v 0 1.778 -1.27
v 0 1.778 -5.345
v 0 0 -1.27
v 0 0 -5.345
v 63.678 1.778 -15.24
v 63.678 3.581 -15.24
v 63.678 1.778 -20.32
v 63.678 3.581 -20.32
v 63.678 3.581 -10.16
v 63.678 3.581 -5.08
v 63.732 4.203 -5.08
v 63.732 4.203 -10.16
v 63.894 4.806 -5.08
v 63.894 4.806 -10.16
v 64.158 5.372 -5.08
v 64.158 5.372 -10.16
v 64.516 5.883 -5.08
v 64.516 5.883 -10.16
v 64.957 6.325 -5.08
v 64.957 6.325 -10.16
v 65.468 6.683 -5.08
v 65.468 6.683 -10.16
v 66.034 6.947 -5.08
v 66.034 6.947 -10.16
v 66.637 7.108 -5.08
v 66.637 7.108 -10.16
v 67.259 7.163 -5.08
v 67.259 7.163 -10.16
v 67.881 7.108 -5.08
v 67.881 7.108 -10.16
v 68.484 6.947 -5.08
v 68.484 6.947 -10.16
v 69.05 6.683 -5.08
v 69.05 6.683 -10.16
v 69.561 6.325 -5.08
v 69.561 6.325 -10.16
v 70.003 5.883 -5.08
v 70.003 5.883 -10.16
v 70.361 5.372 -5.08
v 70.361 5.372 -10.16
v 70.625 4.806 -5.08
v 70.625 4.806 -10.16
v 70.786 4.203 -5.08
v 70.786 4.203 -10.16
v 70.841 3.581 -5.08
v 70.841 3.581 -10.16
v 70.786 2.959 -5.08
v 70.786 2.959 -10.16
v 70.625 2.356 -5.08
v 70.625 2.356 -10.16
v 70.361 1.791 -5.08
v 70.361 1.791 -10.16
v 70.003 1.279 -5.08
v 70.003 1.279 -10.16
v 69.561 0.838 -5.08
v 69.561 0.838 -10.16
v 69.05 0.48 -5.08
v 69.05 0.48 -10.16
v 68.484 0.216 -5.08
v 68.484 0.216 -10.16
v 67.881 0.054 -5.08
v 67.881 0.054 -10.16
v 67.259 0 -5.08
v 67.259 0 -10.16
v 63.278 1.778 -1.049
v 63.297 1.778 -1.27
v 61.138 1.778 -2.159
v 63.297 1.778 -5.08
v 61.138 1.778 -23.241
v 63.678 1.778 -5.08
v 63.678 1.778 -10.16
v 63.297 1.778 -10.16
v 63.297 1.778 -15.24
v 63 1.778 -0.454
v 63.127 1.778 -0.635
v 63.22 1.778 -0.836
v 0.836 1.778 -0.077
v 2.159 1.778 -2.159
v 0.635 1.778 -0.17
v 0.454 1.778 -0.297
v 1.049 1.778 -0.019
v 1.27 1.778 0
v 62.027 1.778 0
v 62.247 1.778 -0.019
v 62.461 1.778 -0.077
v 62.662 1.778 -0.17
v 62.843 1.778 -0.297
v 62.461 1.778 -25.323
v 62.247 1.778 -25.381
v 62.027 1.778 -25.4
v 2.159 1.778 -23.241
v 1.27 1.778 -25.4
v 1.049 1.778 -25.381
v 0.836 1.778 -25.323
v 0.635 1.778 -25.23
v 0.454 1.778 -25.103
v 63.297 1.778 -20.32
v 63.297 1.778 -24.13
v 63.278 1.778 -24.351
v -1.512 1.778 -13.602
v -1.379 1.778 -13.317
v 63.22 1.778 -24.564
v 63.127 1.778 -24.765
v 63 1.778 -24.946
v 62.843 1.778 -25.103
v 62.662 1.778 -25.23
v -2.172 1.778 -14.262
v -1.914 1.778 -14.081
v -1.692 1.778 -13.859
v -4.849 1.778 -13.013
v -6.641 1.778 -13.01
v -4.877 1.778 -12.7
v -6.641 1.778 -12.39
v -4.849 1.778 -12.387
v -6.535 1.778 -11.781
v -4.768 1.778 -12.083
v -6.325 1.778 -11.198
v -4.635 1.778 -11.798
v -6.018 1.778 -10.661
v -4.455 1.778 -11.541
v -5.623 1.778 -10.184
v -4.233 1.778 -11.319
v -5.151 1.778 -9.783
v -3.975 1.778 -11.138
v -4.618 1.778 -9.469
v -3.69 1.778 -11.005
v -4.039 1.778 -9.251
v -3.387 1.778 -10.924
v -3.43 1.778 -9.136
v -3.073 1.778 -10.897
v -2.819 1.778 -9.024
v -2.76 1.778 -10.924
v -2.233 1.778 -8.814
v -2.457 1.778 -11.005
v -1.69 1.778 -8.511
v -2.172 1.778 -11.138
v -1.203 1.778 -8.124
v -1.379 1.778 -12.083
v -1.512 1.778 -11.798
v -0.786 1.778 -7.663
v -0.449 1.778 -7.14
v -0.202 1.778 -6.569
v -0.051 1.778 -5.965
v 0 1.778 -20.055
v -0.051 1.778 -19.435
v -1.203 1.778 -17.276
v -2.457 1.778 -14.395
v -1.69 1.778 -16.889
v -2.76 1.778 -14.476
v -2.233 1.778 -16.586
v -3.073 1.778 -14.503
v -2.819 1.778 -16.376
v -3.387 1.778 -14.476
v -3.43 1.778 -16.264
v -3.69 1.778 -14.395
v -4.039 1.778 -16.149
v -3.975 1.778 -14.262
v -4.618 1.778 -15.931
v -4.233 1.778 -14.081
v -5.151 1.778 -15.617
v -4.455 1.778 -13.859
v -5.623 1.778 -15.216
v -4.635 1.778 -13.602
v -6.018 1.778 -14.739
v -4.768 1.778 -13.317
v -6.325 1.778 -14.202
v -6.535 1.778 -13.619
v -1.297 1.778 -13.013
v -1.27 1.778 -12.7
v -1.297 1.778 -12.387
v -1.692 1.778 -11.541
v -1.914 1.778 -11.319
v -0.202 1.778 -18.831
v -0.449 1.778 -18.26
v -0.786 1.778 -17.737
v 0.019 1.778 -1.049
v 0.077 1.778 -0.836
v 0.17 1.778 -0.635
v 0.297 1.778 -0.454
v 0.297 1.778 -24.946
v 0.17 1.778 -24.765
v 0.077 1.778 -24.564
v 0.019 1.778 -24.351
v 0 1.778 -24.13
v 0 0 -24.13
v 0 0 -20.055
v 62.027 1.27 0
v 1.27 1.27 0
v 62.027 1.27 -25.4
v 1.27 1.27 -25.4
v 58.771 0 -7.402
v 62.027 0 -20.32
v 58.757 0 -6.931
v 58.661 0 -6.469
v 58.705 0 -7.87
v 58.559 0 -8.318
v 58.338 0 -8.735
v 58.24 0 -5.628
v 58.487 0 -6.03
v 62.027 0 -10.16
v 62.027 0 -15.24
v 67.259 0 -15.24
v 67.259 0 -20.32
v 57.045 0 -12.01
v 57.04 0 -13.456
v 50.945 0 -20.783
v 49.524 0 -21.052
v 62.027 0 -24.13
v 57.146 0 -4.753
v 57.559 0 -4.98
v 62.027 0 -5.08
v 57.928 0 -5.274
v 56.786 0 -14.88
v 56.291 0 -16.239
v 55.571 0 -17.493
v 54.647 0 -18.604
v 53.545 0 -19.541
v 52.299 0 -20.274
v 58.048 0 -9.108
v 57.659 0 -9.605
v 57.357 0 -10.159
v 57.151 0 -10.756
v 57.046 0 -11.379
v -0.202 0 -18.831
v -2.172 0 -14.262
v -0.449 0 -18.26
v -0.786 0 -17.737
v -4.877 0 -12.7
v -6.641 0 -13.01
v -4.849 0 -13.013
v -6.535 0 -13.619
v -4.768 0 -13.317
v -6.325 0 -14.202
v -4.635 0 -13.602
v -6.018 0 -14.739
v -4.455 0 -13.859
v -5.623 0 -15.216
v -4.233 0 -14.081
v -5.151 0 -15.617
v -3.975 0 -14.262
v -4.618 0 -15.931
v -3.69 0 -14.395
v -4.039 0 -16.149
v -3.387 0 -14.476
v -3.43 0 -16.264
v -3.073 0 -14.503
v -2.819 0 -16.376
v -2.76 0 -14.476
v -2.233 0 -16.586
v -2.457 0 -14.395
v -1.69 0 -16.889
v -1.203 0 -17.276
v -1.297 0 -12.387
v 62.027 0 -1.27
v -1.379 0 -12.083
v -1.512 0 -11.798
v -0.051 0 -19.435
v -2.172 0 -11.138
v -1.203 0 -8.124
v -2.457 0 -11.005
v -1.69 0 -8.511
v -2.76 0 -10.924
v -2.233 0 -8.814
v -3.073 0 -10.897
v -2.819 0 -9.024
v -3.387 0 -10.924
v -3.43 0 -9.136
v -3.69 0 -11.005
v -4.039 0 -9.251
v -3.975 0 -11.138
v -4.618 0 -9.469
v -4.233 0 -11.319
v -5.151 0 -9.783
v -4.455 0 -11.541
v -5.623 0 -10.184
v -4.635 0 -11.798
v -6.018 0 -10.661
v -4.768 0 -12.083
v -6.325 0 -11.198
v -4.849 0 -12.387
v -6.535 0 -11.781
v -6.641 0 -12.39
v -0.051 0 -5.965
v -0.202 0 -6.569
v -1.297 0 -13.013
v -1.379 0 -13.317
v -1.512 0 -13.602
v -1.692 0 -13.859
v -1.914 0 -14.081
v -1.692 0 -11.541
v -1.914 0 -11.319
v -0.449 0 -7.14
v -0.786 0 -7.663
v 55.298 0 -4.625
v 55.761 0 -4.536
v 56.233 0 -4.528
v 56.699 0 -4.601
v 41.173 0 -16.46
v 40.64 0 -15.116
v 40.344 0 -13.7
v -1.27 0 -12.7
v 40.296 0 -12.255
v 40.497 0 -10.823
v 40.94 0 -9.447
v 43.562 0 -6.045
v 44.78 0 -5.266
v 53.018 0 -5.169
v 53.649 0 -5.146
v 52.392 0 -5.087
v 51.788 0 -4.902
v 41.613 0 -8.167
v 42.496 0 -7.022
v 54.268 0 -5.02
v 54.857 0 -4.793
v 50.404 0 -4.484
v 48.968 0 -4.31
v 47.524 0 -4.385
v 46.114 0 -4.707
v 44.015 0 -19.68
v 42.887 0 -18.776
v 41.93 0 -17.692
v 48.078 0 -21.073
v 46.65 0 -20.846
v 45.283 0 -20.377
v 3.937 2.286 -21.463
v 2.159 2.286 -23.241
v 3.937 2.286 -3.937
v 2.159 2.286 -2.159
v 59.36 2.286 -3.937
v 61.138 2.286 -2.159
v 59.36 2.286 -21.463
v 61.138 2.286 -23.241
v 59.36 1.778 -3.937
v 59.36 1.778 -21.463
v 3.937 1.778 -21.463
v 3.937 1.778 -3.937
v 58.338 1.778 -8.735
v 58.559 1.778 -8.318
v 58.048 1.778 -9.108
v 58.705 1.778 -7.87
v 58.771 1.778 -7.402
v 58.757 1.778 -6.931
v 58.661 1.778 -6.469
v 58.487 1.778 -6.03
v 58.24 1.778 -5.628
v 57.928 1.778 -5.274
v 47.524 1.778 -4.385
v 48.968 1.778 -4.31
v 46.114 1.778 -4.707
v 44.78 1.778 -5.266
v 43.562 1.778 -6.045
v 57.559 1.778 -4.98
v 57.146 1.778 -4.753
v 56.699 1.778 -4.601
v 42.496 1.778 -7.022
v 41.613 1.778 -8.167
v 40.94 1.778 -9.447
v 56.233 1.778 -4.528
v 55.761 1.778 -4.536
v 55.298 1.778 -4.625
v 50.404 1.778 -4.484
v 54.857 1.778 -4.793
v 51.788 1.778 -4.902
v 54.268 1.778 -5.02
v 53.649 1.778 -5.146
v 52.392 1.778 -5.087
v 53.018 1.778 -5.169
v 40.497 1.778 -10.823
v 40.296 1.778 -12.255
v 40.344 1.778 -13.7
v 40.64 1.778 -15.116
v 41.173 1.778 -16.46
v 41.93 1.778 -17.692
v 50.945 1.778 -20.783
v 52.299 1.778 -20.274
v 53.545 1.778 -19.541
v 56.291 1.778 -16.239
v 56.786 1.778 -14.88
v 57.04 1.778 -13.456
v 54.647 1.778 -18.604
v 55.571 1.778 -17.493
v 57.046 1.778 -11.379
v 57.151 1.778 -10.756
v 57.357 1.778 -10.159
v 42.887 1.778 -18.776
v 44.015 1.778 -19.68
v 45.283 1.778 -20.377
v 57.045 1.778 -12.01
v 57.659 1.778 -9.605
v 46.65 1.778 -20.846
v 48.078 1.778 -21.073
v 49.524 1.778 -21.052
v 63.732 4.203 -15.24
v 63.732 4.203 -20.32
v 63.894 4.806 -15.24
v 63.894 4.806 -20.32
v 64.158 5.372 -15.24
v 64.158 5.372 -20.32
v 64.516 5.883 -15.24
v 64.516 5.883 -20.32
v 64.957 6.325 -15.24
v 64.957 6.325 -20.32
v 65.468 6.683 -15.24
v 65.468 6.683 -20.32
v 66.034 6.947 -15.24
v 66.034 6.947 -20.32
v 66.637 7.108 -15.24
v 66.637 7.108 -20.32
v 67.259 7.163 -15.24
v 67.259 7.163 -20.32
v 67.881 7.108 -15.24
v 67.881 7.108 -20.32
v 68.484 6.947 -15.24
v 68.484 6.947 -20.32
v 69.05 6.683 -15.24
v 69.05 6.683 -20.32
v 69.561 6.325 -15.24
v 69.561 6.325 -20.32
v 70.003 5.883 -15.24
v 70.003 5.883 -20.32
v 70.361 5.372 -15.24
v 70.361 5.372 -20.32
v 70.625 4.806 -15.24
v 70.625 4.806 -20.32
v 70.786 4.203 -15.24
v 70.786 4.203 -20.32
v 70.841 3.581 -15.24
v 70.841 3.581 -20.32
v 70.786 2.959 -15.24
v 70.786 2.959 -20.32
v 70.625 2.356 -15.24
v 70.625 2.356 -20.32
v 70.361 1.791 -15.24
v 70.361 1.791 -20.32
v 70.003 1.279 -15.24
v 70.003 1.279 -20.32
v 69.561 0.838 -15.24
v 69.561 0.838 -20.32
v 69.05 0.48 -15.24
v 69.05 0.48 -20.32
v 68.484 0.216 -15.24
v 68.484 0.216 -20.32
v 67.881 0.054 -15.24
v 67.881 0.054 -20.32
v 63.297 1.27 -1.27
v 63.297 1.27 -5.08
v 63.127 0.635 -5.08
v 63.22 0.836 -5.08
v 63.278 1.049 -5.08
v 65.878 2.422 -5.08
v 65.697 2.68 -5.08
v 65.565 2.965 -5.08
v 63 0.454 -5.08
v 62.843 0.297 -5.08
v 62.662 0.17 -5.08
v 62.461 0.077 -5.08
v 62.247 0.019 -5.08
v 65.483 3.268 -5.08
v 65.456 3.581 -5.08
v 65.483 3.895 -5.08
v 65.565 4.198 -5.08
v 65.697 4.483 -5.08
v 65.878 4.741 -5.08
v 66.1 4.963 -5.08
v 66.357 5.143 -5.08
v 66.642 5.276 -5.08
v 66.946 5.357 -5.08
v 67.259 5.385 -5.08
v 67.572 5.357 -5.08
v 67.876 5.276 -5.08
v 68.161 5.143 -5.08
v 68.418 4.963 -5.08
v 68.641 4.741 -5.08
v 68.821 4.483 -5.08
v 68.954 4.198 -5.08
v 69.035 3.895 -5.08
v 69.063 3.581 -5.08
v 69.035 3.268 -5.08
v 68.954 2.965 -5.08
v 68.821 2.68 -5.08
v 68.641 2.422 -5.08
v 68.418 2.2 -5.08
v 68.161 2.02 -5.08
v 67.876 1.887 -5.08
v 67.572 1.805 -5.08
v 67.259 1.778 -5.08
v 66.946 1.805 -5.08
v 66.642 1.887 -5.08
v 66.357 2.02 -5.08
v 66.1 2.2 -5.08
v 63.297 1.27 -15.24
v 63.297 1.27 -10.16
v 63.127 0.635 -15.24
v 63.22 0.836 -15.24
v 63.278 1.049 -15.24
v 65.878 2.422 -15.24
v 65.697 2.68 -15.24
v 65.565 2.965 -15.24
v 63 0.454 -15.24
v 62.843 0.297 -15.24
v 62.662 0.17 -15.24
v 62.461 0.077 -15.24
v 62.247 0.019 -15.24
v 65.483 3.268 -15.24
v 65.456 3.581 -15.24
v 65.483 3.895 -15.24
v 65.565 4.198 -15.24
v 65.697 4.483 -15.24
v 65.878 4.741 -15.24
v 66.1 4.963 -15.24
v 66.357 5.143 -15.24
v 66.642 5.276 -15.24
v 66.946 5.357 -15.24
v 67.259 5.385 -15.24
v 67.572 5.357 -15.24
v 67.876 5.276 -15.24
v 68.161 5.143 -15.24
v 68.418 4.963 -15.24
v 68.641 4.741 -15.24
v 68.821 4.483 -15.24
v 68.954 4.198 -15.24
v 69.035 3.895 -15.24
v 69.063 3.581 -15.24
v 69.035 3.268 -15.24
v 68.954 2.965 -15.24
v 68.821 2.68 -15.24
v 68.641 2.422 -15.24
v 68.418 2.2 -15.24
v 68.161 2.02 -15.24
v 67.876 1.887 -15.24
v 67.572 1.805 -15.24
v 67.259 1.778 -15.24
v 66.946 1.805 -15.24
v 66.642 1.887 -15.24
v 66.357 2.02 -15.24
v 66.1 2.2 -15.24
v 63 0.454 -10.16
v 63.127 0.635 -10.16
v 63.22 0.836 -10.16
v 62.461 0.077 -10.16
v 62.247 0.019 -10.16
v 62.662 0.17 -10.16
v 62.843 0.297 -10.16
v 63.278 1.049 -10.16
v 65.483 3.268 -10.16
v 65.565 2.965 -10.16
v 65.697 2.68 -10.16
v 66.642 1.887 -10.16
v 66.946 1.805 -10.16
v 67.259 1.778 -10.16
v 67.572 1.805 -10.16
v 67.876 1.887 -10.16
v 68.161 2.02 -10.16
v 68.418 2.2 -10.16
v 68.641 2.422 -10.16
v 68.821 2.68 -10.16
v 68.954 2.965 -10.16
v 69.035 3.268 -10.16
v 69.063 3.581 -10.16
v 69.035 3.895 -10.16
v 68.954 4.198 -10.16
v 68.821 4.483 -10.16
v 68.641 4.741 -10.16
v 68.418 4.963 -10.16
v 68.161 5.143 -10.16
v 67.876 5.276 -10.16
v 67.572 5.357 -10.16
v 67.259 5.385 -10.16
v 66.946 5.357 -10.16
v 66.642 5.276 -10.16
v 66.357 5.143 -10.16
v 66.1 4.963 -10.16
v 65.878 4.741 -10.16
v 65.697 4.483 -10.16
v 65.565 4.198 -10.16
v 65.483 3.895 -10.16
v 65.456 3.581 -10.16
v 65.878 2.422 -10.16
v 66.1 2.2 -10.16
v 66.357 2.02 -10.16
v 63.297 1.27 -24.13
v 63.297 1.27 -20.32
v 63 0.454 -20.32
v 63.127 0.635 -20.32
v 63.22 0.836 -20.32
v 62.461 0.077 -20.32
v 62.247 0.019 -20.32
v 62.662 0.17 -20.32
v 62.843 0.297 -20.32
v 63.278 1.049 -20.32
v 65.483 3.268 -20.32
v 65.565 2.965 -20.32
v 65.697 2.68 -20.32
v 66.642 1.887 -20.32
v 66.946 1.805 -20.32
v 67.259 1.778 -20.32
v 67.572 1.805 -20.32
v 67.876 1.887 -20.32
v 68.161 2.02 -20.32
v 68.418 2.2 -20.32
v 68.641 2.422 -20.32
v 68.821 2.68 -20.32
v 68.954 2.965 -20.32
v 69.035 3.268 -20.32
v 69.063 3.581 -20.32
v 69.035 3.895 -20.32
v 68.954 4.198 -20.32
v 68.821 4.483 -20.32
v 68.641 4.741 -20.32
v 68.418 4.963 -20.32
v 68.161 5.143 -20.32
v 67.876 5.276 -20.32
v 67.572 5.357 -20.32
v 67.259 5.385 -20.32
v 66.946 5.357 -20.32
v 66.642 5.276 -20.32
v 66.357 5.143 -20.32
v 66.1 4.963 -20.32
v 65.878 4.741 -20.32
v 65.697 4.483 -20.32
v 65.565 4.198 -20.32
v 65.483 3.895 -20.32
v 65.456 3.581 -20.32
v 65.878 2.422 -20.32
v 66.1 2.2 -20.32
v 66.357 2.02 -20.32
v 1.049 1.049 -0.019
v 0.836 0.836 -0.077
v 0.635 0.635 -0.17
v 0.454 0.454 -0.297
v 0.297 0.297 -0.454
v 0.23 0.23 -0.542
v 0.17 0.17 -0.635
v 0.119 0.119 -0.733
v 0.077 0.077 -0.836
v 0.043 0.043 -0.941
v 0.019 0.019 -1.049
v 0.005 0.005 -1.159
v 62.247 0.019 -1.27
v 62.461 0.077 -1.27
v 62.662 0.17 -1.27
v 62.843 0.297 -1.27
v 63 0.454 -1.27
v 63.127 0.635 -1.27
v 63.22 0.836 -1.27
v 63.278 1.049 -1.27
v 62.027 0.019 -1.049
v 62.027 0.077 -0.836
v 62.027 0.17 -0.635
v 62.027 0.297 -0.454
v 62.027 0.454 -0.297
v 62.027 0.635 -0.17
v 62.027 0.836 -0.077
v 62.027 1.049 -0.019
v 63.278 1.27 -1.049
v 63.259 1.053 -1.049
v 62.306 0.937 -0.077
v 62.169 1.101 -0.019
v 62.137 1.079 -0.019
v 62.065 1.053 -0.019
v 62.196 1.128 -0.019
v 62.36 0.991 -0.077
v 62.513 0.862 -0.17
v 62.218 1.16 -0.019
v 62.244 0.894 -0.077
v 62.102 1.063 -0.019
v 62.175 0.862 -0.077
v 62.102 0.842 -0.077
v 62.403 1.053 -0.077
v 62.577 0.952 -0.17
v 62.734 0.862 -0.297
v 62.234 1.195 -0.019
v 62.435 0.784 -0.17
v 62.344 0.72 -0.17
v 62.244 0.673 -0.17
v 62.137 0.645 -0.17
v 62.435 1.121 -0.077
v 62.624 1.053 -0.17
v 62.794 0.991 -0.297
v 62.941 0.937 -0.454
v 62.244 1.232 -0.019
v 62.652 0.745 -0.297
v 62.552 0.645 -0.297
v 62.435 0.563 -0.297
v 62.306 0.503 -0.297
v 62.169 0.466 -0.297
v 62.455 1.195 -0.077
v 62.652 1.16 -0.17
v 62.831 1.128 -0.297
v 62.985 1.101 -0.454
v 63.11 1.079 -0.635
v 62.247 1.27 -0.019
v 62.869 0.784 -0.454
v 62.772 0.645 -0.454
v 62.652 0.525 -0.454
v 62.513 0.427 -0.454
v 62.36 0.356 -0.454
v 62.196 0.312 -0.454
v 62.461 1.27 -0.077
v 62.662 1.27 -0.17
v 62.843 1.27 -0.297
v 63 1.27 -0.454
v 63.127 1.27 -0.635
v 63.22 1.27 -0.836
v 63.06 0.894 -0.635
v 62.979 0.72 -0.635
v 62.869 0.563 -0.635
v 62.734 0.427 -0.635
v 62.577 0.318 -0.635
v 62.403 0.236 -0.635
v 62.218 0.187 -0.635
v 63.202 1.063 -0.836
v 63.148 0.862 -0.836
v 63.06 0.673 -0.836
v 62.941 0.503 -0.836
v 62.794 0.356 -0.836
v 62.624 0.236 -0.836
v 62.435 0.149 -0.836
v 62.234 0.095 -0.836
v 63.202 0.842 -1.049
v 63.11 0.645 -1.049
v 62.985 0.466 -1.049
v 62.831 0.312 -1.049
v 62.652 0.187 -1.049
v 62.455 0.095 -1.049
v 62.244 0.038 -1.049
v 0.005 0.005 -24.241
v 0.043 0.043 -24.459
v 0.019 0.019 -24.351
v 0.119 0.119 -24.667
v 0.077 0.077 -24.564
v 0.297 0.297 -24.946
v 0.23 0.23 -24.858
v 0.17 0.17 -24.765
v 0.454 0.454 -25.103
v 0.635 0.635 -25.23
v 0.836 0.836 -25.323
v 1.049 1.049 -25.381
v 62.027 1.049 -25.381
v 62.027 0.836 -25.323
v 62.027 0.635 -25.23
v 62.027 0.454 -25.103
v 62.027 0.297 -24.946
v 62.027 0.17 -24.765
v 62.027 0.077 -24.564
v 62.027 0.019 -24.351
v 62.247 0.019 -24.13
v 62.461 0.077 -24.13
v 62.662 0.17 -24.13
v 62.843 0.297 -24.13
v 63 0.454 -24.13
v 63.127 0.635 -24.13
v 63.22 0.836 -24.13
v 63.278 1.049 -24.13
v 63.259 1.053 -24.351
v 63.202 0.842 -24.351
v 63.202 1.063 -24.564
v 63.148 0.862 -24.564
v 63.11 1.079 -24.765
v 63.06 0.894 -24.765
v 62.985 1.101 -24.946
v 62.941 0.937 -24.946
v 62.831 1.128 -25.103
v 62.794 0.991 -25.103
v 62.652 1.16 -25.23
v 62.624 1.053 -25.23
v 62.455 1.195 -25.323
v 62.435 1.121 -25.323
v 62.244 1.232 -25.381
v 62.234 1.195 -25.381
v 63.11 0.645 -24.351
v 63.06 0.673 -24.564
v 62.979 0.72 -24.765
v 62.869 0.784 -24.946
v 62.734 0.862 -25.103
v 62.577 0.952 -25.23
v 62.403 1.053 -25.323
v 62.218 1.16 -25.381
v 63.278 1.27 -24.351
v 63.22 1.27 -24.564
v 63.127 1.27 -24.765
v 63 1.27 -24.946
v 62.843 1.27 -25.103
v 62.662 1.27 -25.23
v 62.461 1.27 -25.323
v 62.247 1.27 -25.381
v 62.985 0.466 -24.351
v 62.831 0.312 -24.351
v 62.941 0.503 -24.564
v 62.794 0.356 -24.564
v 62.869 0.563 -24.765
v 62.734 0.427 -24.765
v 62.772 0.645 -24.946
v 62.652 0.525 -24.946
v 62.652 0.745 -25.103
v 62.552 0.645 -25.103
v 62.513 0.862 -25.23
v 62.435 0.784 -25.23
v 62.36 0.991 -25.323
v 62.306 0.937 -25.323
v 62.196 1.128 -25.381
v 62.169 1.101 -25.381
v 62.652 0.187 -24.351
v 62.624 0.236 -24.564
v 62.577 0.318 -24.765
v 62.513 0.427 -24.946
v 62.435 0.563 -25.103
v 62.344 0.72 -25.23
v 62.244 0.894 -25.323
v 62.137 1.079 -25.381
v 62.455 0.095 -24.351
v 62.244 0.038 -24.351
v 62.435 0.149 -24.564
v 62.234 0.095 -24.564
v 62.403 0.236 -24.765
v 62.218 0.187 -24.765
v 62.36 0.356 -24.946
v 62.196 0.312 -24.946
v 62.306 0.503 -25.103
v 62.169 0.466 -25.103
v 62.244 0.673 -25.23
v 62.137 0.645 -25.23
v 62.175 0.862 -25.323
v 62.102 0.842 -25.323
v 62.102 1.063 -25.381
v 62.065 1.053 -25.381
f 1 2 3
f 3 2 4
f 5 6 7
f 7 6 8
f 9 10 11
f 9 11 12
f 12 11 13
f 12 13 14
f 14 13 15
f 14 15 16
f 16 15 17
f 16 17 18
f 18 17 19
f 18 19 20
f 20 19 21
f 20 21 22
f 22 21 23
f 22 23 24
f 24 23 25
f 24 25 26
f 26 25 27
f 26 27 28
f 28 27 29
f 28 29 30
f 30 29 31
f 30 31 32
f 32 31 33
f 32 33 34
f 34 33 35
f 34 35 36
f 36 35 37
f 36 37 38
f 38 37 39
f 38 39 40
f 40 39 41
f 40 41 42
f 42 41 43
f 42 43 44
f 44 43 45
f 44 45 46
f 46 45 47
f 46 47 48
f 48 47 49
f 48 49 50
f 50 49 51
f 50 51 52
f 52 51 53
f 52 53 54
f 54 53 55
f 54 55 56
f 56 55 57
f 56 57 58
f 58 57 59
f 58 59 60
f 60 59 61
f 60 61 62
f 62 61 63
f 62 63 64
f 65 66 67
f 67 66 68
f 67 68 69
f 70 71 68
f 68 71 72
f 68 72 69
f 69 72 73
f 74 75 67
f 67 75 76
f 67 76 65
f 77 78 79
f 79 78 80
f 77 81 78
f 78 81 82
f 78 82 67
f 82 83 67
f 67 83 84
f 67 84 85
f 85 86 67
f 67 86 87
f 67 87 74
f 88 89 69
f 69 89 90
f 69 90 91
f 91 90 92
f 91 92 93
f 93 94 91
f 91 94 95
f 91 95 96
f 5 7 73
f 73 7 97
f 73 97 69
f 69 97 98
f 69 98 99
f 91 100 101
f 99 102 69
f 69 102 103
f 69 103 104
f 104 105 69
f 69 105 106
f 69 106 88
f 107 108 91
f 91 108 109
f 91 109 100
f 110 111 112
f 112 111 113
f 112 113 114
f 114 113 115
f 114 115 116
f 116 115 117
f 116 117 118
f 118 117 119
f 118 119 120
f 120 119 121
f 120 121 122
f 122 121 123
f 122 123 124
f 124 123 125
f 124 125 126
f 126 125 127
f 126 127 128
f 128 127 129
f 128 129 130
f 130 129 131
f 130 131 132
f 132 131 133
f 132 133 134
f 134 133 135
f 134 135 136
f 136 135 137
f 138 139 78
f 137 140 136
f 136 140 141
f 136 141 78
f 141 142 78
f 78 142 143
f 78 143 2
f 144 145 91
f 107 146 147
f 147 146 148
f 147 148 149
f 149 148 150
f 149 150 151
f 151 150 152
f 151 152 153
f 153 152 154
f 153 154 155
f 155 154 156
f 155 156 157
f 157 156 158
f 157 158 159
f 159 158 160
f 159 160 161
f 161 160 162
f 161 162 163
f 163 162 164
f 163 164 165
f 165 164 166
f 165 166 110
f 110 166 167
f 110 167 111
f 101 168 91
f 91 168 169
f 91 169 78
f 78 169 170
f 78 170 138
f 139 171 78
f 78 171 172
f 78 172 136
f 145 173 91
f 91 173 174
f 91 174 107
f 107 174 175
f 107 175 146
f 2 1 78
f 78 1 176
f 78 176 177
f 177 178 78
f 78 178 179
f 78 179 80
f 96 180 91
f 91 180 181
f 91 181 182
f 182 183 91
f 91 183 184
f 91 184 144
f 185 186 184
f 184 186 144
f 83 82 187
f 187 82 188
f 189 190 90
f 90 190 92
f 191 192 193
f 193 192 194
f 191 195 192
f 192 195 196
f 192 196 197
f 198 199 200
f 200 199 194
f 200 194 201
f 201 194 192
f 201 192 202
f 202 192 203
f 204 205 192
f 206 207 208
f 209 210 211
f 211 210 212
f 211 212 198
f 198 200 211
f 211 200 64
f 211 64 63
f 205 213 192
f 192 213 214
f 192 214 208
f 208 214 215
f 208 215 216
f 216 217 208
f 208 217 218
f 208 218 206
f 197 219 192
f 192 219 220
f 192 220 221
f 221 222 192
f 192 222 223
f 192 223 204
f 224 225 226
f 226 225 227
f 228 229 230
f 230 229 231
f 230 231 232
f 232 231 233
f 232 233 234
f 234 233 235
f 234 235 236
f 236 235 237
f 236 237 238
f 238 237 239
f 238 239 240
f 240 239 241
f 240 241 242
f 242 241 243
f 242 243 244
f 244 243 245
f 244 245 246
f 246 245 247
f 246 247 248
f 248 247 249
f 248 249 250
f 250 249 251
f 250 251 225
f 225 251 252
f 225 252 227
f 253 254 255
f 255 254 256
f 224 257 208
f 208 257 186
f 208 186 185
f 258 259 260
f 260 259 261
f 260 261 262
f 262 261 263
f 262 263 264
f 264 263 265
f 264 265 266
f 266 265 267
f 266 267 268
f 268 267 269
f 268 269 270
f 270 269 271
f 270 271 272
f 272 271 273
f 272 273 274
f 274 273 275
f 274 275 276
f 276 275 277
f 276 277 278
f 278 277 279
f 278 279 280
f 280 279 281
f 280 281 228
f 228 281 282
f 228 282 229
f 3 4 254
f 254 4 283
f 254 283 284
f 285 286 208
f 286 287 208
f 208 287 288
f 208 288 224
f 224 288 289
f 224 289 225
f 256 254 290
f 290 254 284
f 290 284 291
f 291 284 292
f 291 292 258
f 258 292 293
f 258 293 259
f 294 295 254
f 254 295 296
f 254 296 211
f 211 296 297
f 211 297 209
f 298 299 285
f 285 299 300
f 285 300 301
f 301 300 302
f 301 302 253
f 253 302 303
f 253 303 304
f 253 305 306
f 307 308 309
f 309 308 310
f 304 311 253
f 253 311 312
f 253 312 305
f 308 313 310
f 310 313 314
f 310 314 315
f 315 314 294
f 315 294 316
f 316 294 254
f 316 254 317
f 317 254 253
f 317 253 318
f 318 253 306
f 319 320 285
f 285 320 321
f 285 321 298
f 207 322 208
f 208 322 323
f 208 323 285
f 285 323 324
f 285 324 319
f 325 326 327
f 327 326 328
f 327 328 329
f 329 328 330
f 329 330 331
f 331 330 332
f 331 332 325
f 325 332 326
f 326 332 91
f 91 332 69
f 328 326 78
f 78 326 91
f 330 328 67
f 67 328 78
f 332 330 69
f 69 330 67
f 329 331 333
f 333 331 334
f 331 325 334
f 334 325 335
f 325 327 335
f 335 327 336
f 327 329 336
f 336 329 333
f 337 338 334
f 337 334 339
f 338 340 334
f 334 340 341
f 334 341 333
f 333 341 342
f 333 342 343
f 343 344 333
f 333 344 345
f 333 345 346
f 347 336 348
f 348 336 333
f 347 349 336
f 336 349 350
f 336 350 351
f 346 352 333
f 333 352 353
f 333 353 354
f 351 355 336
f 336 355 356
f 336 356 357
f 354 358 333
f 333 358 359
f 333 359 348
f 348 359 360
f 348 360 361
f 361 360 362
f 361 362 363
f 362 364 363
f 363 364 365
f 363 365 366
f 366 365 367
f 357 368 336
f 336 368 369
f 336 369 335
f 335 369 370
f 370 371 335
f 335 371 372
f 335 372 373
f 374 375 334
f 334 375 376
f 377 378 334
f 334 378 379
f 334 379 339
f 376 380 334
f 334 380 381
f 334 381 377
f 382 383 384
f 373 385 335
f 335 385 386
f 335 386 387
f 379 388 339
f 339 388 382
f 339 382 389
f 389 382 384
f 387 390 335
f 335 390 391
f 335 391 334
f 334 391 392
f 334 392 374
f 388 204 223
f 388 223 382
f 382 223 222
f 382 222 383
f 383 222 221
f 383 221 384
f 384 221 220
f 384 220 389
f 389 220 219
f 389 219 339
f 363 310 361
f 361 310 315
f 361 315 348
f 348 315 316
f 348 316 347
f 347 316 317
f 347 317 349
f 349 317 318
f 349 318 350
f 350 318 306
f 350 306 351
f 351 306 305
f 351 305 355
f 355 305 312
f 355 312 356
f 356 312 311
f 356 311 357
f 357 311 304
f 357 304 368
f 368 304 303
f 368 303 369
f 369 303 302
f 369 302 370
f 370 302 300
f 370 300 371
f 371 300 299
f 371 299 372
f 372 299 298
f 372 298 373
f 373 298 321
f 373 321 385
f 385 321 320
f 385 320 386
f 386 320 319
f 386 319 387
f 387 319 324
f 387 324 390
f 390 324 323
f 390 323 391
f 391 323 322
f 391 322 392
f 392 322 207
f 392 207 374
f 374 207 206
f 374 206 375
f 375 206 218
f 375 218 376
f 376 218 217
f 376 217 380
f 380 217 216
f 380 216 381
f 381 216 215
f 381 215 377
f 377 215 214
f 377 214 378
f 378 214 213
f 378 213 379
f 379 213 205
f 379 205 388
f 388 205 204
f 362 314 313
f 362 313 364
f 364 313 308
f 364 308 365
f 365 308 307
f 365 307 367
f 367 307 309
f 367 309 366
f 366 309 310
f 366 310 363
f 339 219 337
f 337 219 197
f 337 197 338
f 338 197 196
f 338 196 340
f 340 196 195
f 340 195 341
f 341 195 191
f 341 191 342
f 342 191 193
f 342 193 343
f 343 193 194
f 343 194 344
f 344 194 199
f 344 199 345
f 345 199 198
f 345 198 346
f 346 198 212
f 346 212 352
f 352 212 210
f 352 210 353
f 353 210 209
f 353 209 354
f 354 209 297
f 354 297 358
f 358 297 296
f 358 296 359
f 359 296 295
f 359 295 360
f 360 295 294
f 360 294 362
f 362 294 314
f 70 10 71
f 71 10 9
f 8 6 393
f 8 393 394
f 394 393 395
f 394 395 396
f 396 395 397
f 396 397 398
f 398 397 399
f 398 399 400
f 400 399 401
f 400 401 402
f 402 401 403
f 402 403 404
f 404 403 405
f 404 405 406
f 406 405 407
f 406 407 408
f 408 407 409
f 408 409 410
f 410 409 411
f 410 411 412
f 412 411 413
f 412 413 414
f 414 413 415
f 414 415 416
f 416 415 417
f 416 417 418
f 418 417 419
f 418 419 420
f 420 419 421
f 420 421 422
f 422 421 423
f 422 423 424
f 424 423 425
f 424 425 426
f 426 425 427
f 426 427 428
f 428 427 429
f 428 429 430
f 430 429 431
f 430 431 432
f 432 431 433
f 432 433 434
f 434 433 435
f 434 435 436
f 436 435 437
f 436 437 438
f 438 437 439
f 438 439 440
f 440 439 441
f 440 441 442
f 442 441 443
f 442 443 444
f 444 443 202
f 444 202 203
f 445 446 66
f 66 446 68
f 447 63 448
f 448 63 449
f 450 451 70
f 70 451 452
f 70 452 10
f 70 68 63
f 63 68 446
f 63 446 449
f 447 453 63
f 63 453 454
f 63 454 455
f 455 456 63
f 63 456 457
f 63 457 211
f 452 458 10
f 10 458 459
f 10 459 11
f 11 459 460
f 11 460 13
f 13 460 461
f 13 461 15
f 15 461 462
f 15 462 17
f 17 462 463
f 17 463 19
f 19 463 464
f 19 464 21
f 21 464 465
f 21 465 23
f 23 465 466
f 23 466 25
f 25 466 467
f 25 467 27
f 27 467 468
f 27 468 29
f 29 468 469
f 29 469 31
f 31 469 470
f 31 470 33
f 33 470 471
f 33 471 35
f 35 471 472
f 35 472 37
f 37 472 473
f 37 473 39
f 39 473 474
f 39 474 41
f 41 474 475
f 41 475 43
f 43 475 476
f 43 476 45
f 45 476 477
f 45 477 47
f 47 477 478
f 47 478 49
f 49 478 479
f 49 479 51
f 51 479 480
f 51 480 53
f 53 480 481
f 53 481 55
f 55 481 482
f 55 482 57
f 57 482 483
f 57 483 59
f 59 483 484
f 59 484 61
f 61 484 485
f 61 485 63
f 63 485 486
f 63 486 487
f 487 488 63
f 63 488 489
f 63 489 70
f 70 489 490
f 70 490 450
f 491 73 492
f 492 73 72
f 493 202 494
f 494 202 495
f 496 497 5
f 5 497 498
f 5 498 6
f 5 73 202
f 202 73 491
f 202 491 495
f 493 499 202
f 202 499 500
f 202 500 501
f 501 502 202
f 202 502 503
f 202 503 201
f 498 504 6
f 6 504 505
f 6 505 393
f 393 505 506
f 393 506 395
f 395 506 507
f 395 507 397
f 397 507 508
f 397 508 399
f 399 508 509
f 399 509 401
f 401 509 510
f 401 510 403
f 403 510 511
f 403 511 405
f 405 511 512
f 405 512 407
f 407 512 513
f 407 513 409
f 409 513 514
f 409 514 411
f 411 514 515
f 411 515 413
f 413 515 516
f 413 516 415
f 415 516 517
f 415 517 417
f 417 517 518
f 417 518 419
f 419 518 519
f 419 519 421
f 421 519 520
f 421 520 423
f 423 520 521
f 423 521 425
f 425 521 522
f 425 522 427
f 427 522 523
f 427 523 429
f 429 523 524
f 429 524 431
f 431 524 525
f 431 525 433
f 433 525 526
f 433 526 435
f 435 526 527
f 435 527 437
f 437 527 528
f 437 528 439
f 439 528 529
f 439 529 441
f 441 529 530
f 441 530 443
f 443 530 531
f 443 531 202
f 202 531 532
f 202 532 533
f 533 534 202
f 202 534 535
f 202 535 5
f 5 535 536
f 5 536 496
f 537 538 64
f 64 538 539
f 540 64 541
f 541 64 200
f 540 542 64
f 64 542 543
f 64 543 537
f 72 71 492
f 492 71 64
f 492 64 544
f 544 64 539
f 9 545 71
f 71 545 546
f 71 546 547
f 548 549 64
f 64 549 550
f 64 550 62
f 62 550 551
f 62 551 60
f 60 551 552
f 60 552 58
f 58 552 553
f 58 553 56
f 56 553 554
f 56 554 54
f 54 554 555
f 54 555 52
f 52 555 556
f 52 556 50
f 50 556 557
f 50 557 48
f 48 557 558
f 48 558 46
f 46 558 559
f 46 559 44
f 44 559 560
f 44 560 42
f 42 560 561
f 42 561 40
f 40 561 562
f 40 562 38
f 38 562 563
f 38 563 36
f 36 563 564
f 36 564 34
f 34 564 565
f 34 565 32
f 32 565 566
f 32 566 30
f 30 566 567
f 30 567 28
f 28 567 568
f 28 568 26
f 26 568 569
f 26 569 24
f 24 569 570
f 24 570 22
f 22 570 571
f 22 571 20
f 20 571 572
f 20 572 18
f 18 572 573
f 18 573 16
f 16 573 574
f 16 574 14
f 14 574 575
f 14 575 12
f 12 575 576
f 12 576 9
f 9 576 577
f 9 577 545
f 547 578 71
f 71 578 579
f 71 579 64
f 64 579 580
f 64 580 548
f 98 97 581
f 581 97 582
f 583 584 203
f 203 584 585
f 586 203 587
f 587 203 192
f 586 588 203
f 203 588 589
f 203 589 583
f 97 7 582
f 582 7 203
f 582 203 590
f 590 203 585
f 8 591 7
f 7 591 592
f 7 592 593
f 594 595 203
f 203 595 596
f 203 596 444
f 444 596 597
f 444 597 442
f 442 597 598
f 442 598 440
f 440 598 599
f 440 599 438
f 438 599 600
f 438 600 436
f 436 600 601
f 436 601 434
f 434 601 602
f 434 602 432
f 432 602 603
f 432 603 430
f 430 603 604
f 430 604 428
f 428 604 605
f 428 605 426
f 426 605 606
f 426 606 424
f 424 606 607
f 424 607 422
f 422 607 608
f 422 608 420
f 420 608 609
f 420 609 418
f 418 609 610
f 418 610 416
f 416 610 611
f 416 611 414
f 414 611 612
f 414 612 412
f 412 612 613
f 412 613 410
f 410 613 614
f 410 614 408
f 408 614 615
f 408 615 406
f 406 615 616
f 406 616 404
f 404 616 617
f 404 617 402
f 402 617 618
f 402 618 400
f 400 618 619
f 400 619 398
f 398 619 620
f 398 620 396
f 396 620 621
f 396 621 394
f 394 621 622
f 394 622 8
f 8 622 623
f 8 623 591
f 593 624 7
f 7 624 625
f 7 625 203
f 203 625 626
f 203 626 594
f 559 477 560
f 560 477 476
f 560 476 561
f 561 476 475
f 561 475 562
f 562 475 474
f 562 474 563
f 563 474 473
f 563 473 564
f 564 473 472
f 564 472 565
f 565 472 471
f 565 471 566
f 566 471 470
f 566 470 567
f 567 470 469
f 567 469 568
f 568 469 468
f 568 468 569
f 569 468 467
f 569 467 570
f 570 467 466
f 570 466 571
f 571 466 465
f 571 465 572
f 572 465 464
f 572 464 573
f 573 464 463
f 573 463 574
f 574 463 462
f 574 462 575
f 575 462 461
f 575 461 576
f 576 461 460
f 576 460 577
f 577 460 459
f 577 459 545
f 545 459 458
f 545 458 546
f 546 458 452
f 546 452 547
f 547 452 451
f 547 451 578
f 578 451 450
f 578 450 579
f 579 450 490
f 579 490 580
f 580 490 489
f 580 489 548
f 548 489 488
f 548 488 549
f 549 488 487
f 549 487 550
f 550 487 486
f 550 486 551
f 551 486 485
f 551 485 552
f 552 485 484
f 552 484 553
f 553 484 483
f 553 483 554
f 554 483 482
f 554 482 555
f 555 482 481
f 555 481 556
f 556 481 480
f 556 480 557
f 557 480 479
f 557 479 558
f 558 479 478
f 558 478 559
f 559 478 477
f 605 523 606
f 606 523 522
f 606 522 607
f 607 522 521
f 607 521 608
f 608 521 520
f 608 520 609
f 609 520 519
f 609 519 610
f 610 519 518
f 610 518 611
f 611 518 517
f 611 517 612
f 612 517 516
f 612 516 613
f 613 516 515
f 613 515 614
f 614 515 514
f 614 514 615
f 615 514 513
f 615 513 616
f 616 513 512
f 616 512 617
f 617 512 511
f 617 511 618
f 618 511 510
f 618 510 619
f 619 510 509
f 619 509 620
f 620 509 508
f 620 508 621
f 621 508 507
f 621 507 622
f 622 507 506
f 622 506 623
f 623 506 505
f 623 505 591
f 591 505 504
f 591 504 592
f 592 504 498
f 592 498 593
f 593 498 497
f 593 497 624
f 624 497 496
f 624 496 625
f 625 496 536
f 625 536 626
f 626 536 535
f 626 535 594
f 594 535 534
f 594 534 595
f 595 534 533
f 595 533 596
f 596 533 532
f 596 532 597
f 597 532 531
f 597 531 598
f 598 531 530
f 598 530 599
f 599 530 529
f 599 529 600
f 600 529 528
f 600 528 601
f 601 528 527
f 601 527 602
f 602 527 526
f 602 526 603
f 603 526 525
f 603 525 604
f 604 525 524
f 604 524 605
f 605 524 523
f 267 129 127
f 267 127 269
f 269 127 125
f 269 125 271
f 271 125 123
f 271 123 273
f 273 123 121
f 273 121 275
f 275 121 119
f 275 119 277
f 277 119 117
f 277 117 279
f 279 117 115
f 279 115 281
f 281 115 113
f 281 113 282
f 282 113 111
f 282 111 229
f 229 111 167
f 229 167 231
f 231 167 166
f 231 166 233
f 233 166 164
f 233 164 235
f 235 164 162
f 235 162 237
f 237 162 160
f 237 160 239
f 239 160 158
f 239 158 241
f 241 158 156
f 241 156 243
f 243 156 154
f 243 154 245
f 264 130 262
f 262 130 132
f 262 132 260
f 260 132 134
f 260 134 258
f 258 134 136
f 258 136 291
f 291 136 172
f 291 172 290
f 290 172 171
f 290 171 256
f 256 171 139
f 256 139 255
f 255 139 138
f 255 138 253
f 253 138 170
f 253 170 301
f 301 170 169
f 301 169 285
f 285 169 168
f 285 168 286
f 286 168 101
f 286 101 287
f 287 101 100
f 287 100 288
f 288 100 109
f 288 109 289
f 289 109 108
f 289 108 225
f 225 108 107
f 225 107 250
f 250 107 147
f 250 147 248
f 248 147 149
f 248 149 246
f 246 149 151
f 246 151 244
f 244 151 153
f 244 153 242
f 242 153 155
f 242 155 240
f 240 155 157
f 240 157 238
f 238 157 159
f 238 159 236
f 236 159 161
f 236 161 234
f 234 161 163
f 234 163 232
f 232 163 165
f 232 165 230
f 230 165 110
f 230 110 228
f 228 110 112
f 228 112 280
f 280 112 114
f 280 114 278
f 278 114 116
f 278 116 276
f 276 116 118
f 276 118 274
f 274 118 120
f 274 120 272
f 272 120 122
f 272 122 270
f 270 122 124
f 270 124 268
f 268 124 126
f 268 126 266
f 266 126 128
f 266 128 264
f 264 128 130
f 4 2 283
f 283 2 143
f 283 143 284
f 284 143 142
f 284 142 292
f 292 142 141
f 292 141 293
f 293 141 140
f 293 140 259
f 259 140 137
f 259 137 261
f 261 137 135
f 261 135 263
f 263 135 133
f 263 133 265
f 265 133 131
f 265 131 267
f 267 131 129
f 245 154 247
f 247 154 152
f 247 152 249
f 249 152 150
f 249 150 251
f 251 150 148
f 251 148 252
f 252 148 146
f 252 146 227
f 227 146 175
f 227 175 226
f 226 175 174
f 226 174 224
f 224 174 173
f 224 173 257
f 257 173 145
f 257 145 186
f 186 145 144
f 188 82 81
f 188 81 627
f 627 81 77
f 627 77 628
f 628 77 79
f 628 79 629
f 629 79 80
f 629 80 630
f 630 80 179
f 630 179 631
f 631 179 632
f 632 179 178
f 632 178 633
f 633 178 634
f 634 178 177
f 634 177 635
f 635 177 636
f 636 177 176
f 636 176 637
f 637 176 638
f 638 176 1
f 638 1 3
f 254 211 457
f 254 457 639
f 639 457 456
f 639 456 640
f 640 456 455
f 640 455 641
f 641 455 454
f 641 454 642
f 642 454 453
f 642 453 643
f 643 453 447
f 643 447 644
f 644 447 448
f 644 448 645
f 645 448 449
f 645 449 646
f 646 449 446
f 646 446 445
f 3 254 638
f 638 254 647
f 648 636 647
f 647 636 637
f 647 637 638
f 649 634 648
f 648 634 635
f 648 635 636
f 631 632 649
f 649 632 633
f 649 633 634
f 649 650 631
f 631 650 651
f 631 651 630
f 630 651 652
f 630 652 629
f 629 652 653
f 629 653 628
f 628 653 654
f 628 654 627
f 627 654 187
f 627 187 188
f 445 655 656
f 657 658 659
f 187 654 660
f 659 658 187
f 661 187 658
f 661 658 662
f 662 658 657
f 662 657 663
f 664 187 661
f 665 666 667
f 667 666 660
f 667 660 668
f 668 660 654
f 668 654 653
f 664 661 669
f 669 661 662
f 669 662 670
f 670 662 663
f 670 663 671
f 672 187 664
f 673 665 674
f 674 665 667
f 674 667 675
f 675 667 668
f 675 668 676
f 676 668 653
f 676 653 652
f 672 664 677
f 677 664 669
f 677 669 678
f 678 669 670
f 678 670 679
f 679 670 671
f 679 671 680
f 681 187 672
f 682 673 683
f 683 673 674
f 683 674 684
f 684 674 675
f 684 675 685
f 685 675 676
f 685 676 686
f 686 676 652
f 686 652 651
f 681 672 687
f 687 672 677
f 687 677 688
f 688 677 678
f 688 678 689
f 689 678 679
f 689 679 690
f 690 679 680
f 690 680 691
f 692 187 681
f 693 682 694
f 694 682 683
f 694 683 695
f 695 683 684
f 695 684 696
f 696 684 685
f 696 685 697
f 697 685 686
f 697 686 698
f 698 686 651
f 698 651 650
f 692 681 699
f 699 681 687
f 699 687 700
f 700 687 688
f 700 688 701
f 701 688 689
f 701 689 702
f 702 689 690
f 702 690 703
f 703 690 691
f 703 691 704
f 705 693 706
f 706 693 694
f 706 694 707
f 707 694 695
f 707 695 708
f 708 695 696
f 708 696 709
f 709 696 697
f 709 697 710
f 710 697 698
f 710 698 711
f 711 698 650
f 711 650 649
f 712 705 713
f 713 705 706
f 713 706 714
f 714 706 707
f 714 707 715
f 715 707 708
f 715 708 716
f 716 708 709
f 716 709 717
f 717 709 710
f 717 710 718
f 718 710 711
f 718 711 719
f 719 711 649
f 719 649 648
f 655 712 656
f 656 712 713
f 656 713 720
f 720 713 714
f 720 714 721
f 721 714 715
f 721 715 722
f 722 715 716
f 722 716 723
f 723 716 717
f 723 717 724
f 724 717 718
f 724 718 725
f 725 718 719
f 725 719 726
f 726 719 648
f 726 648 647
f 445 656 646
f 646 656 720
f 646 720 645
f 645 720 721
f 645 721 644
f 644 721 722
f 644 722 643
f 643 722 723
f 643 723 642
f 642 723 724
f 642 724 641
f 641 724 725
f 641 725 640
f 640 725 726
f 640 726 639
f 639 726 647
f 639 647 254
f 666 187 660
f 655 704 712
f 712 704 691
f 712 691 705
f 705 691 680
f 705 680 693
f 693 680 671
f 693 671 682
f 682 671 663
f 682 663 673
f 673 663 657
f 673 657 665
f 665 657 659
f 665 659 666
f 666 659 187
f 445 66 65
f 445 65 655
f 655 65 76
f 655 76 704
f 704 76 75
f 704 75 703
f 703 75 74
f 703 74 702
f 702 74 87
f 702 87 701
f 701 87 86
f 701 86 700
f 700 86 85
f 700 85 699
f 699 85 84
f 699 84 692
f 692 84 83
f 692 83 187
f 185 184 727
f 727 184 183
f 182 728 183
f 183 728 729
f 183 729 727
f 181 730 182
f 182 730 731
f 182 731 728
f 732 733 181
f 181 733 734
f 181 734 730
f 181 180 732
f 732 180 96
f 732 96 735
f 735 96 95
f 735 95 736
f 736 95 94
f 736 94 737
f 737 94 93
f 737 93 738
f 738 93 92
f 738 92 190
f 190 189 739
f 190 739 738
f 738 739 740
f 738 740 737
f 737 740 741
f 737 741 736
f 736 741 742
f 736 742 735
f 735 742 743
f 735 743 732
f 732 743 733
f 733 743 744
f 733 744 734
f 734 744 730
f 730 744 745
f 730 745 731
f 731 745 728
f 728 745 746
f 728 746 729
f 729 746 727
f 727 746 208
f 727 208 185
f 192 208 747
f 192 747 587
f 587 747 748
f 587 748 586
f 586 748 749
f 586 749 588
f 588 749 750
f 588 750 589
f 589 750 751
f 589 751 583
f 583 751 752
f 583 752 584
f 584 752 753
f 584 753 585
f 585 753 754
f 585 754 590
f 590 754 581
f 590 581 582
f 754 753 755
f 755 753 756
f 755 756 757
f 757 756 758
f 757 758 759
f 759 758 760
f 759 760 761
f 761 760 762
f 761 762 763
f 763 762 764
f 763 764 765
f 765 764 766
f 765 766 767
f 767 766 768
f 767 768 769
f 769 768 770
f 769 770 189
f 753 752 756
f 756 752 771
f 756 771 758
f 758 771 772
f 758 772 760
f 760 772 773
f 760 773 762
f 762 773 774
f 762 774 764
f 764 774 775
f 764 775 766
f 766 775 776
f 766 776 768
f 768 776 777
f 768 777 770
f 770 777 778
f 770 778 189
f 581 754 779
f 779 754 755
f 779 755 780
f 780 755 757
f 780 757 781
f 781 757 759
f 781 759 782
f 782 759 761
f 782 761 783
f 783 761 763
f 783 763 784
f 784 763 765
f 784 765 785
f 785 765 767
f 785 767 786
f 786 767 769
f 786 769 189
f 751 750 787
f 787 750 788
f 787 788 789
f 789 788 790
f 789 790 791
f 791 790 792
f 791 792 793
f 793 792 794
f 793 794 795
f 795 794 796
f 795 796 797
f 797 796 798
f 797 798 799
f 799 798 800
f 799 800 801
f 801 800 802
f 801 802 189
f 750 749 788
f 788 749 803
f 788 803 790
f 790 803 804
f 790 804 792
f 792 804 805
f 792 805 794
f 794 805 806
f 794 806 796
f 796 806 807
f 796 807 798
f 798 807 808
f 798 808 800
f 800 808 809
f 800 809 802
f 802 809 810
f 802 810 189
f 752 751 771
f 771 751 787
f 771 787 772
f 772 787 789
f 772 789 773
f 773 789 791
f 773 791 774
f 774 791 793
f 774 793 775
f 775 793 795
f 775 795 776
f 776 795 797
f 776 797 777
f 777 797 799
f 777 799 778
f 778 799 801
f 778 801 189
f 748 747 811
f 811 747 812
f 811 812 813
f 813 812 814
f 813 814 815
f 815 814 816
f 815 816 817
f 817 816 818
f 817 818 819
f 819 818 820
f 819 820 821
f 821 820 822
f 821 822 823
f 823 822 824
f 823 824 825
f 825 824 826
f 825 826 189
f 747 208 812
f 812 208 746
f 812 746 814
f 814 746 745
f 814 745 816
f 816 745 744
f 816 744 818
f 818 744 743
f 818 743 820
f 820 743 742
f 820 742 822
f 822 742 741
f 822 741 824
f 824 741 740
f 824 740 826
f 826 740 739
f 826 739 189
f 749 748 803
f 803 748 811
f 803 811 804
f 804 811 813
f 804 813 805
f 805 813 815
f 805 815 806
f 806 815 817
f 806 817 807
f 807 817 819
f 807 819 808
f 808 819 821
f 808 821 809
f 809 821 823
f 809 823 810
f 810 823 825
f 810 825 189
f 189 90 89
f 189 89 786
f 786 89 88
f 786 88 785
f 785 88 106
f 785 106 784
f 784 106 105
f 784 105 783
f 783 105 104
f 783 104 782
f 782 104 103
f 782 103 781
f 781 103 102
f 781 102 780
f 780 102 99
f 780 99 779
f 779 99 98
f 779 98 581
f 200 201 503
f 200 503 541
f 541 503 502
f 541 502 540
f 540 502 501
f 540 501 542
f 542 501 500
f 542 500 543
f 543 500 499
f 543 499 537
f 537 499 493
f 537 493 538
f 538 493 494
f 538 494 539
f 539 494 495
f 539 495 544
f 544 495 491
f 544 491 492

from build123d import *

# Parameters (mm, degrees)
SKETCH1_W               = 63.2968
SKETCH1_H               = 25.4
BOSS_EXTRUDE1_DEPTH     = 1.778
SKETCH2_W               = 58.9788
SKETCH2_H               = 21.082
SKETCH2_W_2             = 55.4228
SKETCH2_H_2             = 17.526
BOSS_EXTRUDE2_DEPTH     = 0.508
CUT_EXTRUDE1_DEPTH      = 69.241268205
SKETCH4_R               = 1.8034
BOSS_EXTRUDE3_DEPTH     = 25.4
CUT_EXTRUDE2_DEPTH      = 76.448967385
CUT_EXTRUDE2_DEPTH_BACK = 76.448967385
SKETCH5_W               = 7.5438
SKETCH5_H               = 5.08
SKETCH6_R               = 1.8034
BOSS_EXTRUDE4_DEPTH     = 1.778
FILLET1_R               = 3.81
FILLET2_R               = 1.27


with BuildPart() as part:
    # Sketch1 → Boss-Extrude1 (new body)
    with BuildSketch(Plane(origin=(0, 0, 0), x_dir=(1, 0, 0), z_dir=(0, 1, 0))):
        with Locations((31.6484, 12.7)):
            Rectangle(SKETCH1_W, SKETCH1_H)
    extrude(amount=BOSS_EXTRUDE1_DEPTH)

    # Sketch2 → Boss-Extrude2 (add)
    with BuildSketch(Plane(origin=(0, 1.778, 0), x_dir=(1, 0, 0), z_dir=(0, 1, 0))):
        with Locations((31.6484, 12.7)):
            Rectangle(SKETCH2_W, SKETCH2_H)
        with Locations((31.6484, 12.7)):
            Rectangle(SKETCH2_W_2, SKETCH2_H_2, mode=Mode.SUBTRACT)
    extrude(amount=BOSS_EXTRUDE2_DEPTH)

    # Sketch3 → Cut-Extrude1 (cut, through all)
    with BuildSketch(Plane.XZ):
        with BuildLine():
            ThreePointArc((51.787849097, -4.902137014), (41.929975763, -17.692024651), (57.045417104, -12.010270916))
            ThreePointArc((57.045417104, -12.010270916), (57.241266983, -10.453460929), (58.047912797, -9.107601708))
            ThreePointArc((58.047912797, -9.107601708), (58.24035221, -5.627970348), (54.856830108, -4.793317419))
            ThreePointArc((54.856830108, -4.793317419), (53.333788817, -5.170623315), (51.787849097, -4.902137014))
        make_face()
    extrude(amount=-CUT_EXTRUDE1_DEPTH, mode=Mode.SUBTRACT)

    # Sketch4 → Boss-Extrude3 (add)
    with BuildSketch(Plane.XY):
        with BuildLine():
            Line((63.2968, 0), (67.2592, 0))
            ThreePointArc((67.2592, 0), (69.791632226, 6.113832226), (63.6778, 3.5814))
            Line((63.6778, 3.5814), (63.6778, 1.778))
            Line((63.6778, 1.778), (63.2968, 1.778))
            Line((63.2968, 1.778), (63.2968, 0))
        make_face()
        with Locations((67.2592, 3.5814)):
            Circle(SKETCH4_R, mode=Mode.SUBTRACT)
    extrude(amount=-BOSS_EXTRUDE3_DEPTH)

    # Sketch5 → Cut-Extrude2 (cut, two sides: drawn at the far end of the back side and taken through both)
    with BuildSketch(Plane(origin=(0, 1.778, 0), x_dir=(1, 0, 0), z_dir=(0, 1, 0)).offset(-CUT_EXTRUDE2_DEPTH_BACK)):
        with Locations((67.0687, 22.86)):
            Rectangle(SKETCH5_W, SKETCH5_H)
        with Locations((67.0687, 12.7)):
            Rectangle(SKETCH5_W, SKETCH5_H)
        with Locations((67.0687, 2.54)):
            Rectangle(SKETCH5_W, SKETCH5_H)
    extrude(amount=CUT_EXTRUDE2_DEPTH + CUT_EXTRUDE2_DEPTH_BACK, mode=Mode.SUBTRACT)

    # Sketch6 → Boss-Extrude4 (add)
    with BuildSketch(Plane(origin=(0, 1.778, 0), x_dir=(1, 0, 0), z_dir=(0, 1, 0))):
        with BuildLine():
            Line((0, 16.2814), (0, 9.1186))
            Line((0, 9.1186), (-3.0734, 9.1186))
            ThreePointArc((-3.0734, 9.1186), (-6.6548, 12.7), (-3.0734, 16.2814))
            Line((-3.0734, 16.2814), (0, 16.2814))
        make_face()
        with Locations(Location((-3.0734, 12.7, 0), (0, 0, 270))):
            Circle(SKETCH6_R, mode=Mode.SUBTRACT)
    extrude(amount=-BOSS_EXTRUDE4_DEPTH)

    # Fillet1
    fillet1_edges = [part.edges().sort_by_distance(p)[0] for p in [
        (0, 0.889, -9.1186),
        (0, 0.889, -16.2814),
    ]]
    fillet(fillet1_edges, radius=FILLET1_R)

    # Fillet2
    fillet2_edges = [part.edges().sort_by_distance(p)[0] for p in [
        (63.2968, 0, -22.86),
        (63.2968, 0.889, -25.4),
        (63.2968, 0, -12.7),
        (63.2968, 0.889, 0),
        (63.2968, 0, -2.54),
        (31.6484, 0, 0),
        (0, 0.889, -25.4),
        (0, 0.889, 0),
        (31.6484, 0, -25.4),
    ]]
    fillet(fillet2_edges, radius=FILLET2_R)


solid = part.part
